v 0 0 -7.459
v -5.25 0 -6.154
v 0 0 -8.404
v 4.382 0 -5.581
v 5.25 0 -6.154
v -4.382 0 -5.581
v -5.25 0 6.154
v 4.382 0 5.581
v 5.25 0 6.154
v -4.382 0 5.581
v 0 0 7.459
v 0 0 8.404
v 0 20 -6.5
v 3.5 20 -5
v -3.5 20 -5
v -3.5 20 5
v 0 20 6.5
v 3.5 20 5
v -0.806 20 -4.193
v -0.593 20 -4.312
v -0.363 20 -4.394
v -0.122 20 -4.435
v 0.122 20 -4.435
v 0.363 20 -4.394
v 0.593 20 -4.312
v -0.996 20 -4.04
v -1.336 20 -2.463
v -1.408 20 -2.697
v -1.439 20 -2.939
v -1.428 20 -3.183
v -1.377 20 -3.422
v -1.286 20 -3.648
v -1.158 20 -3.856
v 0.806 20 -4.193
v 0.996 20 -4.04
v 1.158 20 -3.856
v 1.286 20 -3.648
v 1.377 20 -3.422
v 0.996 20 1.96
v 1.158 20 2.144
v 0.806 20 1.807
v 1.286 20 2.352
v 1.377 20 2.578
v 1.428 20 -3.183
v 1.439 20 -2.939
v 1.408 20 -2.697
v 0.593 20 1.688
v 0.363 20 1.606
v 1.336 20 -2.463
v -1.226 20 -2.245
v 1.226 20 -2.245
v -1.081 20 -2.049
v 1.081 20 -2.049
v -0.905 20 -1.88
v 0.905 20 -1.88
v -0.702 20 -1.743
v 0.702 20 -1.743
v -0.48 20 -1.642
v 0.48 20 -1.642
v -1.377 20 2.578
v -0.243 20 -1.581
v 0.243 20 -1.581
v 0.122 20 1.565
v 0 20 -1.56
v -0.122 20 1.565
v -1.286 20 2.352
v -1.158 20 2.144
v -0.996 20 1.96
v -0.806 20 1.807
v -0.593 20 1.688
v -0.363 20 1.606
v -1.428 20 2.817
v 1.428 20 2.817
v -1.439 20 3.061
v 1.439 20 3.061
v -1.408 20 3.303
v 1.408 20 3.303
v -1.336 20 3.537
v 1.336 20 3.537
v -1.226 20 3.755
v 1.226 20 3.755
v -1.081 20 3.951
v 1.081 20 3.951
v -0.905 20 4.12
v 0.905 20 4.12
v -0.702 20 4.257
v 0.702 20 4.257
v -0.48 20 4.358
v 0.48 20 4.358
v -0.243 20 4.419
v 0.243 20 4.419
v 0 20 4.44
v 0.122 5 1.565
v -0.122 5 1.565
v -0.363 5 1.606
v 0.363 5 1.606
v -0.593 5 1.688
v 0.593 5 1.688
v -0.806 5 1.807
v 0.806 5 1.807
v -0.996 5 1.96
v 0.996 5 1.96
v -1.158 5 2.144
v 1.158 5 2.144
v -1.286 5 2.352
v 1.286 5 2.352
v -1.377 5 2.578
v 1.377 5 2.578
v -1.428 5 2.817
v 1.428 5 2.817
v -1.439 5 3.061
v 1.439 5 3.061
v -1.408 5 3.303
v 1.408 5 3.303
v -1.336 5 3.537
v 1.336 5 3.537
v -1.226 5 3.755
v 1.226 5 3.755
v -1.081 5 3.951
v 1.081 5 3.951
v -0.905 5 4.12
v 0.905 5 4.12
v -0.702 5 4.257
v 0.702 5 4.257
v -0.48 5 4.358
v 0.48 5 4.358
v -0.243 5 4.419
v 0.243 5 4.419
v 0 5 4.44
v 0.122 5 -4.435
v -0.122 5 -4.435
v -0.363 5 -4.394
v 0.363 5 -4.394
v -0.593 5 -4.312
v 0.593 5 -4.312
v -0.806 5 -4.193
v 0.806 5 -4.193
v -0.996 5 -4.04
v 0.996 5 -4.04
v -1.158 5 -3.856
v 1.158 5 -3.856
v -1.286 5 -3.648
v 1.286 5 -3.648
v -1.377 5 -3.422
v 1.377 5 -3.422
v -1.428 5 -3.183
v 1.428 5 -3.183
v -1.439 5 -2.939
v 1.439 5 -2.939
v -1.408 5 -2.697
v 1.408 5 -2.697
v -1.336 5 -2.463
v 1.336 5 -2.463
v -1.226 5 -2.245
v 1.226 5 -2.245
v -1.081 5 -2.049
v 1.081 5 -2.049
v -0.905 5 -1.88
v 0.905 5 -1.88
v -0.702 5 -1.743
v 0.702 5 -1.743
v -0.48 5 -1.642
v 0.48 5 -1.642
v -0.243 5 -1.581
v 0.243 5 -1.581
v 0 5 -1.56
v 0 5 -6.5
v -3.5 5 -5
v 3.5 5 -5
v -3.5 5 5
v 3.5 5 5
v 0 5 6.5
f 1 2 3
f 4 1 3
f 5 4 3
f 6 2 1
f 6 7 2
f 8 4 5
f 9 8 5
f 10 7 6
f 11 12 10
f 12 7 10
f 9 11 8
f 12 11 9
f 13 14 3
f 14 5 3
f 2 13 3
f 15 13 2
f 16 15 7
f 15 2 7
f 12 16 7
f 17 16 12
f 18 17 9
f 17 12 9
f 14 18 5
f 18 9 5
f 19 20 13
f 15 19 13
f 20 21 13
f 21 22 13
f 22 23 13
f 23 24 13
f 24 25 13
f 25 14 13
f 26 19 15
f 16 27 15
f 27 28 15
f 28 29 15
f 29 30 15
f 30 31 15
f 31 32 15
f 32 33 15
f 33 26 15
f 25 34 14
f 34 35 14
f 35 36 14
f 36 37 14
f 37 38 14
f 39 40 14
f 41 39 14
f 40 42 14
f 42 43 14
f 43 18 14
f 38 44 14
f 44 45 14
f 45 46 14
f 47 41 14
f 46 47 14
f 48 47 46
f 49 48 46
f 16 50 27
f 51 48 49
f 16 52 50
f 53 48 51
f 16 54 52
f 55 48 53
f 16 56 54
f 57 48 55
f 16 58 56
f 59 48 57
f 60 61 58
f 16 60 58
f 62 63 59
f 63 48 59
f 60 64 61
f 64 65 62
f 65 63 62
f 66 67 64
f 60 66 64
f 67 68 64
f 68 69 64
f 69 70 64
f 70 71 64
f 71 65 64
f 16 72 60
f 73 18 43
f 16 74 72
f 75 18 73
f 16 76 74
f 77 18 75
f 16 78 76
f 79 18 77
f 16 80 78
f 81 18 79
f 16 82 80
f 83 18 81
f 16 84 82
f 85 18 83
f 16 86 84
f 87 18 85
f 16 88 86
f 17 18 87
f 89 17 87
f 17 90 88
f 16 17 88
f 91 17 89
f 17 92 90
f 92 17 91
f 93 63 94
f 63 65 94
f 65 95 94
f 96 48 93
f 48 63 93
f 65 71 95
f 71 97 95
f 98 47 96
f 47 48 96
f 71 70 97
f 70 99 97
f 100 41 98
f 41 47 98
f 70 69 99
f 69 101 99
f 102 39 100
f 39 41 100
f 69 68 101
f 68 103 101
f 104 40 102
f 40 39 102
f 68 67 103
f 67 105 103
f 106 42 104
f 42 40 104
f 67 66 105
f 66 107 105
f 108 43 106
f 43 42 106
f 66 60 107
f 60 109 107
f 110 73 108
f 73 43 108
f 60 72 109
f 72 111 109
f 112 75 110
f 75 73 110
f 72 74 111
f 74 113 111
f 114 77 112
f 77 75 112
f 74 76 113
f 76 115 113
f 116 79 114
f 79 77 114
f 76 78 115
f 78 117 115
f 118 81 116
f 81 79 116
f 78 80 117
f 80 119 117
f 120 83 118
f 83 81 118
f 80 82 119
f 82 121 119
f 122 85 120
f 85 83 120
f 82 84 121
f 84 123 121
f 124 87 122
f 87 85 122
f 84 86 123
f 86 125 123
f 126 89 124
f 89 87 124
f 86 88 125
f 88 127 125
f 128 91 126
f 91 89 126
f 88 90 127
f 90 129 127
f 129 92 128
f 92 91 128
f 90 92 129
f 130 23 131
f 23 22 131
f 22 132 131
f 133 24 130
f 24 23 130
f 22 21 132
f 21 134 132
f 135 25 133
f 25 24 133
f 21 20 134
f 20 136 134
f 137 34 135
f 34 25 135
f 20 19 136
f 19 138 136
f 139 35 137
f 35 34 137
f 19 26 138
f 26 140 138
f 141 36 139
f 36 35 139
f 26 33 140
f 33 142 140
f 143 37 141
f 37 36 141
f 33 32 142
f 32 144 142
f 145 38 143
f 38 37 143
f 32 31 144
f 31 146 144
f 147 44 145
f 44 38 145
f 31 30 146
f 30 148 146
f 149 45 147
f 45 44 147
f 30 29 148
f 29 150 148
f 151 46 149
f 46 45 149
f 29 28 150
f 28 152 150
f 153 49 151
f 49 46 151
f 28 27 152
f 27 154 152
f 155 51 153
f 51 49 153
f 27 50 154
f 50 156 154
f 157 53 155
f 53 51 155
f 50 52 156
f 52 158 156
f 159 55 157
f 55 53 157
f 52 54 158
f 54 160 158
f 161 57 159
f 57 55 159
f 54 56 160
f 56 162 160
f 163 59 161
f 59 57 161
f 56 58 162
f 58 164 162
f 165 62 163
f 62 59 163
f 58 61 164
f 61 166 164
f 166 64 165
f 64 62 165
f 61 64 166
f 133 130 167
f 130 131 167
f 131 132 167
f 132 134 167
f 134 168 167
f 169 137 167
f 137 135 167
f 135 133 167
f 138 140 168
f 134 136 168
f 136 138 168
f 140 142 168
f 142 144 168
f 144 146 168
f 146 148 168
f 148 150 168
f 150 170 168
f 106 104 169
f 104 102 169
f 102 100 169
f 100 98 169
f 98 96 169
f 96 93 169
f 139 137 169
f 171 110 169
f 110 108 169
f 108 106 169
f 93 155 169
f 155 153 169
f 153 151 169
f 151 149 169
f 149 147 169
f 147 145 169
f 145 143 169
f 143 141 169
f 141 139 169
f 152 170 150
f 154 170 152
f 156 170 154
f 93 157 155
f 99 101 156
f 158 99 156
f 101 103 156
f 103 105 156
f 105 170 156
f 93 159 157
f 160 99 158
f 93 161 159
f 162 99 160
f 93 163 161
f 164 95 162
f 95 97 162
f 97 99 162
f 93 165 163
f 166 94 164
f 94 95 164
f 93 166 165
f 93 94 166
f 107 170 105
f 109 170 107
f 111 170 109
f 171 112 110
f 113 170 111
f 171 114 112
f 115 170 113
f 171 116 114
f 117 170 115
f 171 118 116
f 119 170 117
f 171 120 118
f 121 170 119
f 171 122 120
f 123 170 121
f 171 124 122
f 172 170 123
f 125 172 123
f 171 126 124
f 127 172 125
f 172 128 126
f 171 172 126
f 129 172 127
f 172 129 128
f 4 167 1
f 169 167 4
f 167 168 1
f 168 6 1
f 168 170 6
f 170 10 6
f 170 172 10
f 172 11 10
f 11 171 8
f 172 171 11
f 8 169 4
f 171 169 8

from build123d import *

# Parameters (mm, degrees)
BOSS_EXTRUDE1_DEPTH = 20
SKETCH2_R           = 1.44
CUT_EXTRUDE1_DEPTH  = 21
DRAFT1_ANGLE        = 5
CUT_EXTRUDE2_DEPTH  = 5
DRAFT2_ANGLE        = 10


with BuildPart() as part:
    # Sketch1 → Boss-Extrude1 (new body)
    with BuildSketch(Plane(origin=(0, 0, 0), x_dir=(1, 0, 0), z_dir=(0, 1, 0))):
        Polygon((3.5, -5), (3.5, 5), (0, 6.5), (-3.5, 5), (-3.5, -5), (0, -6.5), align=None)
    extrude(amount=BOSS_EXTRUDE1_DEPTH)

    # Sketch2 → Cut-Extrude1 (cut, through all)
    with BuildSketch(Plane(origin=(0, 20, 0), x_dir=(1, 0, 0), z_dir=(0, 1, 0))):
        with Locations((0, 3)):
            Circle(SKETCH2_R)
        with Locations((0, -3)):
            Circle(SKETCH2_R)
    extrude(amount=-CUT_EXTRUDE1_DEPTH, mode=Mode.SUBTRACT)

    # Draft1
    draft1_faces = [part.faces().sort_by_distance(p)[0] for p in [
        (-3.5, 10, 0),
        (-1.75, 10, -5.75),
        (1.75, 10, -5.75),
        (3.5, 10, 0),
        (1.75, 10, 5.75),
        (-1.75, 10, 5.75),
    ]]
    draft(draft1_faces, Plane.ZX.offset(20), DRAFT1_ANGLE)

    # Sketch1<2> → Cut-Extrude2 (cut)
    with BuildSketch(Plane(origin=(0, 0, 0), x_dir=(1, 0, 0), z_dir=(0, 1, 0))):
        Polygon((3.5, -5), (3.5, 5), (0, 6.5), (-3.5, 5), (-3.5, -5), (0, -6.5), align=None)
    extrude(amount=CUT_EXTRUDE2_DEPTH, mode=Mode.SUBTRACT)

    # Draft2
    draft2_faces = [part.faces().sort_by_distance(p)[0] for p in [
        (-3.5, 2.5, 0),
        (-1.75, 2.5, 5.75),
        (1.75, 2.5, 5.75),
        (3.5, 2.5, 0),
        (1.75, 2.5, -5.75),
        (-1.75, 2.5, -5.75),
    ]]
    draft(draft2_faces, Plane(origin=(0, 5, 0), x_dir=(0, 0, -1), z_dir=(0, -1, 0)), DRAFT2_ANGLE)


solid = part.part
